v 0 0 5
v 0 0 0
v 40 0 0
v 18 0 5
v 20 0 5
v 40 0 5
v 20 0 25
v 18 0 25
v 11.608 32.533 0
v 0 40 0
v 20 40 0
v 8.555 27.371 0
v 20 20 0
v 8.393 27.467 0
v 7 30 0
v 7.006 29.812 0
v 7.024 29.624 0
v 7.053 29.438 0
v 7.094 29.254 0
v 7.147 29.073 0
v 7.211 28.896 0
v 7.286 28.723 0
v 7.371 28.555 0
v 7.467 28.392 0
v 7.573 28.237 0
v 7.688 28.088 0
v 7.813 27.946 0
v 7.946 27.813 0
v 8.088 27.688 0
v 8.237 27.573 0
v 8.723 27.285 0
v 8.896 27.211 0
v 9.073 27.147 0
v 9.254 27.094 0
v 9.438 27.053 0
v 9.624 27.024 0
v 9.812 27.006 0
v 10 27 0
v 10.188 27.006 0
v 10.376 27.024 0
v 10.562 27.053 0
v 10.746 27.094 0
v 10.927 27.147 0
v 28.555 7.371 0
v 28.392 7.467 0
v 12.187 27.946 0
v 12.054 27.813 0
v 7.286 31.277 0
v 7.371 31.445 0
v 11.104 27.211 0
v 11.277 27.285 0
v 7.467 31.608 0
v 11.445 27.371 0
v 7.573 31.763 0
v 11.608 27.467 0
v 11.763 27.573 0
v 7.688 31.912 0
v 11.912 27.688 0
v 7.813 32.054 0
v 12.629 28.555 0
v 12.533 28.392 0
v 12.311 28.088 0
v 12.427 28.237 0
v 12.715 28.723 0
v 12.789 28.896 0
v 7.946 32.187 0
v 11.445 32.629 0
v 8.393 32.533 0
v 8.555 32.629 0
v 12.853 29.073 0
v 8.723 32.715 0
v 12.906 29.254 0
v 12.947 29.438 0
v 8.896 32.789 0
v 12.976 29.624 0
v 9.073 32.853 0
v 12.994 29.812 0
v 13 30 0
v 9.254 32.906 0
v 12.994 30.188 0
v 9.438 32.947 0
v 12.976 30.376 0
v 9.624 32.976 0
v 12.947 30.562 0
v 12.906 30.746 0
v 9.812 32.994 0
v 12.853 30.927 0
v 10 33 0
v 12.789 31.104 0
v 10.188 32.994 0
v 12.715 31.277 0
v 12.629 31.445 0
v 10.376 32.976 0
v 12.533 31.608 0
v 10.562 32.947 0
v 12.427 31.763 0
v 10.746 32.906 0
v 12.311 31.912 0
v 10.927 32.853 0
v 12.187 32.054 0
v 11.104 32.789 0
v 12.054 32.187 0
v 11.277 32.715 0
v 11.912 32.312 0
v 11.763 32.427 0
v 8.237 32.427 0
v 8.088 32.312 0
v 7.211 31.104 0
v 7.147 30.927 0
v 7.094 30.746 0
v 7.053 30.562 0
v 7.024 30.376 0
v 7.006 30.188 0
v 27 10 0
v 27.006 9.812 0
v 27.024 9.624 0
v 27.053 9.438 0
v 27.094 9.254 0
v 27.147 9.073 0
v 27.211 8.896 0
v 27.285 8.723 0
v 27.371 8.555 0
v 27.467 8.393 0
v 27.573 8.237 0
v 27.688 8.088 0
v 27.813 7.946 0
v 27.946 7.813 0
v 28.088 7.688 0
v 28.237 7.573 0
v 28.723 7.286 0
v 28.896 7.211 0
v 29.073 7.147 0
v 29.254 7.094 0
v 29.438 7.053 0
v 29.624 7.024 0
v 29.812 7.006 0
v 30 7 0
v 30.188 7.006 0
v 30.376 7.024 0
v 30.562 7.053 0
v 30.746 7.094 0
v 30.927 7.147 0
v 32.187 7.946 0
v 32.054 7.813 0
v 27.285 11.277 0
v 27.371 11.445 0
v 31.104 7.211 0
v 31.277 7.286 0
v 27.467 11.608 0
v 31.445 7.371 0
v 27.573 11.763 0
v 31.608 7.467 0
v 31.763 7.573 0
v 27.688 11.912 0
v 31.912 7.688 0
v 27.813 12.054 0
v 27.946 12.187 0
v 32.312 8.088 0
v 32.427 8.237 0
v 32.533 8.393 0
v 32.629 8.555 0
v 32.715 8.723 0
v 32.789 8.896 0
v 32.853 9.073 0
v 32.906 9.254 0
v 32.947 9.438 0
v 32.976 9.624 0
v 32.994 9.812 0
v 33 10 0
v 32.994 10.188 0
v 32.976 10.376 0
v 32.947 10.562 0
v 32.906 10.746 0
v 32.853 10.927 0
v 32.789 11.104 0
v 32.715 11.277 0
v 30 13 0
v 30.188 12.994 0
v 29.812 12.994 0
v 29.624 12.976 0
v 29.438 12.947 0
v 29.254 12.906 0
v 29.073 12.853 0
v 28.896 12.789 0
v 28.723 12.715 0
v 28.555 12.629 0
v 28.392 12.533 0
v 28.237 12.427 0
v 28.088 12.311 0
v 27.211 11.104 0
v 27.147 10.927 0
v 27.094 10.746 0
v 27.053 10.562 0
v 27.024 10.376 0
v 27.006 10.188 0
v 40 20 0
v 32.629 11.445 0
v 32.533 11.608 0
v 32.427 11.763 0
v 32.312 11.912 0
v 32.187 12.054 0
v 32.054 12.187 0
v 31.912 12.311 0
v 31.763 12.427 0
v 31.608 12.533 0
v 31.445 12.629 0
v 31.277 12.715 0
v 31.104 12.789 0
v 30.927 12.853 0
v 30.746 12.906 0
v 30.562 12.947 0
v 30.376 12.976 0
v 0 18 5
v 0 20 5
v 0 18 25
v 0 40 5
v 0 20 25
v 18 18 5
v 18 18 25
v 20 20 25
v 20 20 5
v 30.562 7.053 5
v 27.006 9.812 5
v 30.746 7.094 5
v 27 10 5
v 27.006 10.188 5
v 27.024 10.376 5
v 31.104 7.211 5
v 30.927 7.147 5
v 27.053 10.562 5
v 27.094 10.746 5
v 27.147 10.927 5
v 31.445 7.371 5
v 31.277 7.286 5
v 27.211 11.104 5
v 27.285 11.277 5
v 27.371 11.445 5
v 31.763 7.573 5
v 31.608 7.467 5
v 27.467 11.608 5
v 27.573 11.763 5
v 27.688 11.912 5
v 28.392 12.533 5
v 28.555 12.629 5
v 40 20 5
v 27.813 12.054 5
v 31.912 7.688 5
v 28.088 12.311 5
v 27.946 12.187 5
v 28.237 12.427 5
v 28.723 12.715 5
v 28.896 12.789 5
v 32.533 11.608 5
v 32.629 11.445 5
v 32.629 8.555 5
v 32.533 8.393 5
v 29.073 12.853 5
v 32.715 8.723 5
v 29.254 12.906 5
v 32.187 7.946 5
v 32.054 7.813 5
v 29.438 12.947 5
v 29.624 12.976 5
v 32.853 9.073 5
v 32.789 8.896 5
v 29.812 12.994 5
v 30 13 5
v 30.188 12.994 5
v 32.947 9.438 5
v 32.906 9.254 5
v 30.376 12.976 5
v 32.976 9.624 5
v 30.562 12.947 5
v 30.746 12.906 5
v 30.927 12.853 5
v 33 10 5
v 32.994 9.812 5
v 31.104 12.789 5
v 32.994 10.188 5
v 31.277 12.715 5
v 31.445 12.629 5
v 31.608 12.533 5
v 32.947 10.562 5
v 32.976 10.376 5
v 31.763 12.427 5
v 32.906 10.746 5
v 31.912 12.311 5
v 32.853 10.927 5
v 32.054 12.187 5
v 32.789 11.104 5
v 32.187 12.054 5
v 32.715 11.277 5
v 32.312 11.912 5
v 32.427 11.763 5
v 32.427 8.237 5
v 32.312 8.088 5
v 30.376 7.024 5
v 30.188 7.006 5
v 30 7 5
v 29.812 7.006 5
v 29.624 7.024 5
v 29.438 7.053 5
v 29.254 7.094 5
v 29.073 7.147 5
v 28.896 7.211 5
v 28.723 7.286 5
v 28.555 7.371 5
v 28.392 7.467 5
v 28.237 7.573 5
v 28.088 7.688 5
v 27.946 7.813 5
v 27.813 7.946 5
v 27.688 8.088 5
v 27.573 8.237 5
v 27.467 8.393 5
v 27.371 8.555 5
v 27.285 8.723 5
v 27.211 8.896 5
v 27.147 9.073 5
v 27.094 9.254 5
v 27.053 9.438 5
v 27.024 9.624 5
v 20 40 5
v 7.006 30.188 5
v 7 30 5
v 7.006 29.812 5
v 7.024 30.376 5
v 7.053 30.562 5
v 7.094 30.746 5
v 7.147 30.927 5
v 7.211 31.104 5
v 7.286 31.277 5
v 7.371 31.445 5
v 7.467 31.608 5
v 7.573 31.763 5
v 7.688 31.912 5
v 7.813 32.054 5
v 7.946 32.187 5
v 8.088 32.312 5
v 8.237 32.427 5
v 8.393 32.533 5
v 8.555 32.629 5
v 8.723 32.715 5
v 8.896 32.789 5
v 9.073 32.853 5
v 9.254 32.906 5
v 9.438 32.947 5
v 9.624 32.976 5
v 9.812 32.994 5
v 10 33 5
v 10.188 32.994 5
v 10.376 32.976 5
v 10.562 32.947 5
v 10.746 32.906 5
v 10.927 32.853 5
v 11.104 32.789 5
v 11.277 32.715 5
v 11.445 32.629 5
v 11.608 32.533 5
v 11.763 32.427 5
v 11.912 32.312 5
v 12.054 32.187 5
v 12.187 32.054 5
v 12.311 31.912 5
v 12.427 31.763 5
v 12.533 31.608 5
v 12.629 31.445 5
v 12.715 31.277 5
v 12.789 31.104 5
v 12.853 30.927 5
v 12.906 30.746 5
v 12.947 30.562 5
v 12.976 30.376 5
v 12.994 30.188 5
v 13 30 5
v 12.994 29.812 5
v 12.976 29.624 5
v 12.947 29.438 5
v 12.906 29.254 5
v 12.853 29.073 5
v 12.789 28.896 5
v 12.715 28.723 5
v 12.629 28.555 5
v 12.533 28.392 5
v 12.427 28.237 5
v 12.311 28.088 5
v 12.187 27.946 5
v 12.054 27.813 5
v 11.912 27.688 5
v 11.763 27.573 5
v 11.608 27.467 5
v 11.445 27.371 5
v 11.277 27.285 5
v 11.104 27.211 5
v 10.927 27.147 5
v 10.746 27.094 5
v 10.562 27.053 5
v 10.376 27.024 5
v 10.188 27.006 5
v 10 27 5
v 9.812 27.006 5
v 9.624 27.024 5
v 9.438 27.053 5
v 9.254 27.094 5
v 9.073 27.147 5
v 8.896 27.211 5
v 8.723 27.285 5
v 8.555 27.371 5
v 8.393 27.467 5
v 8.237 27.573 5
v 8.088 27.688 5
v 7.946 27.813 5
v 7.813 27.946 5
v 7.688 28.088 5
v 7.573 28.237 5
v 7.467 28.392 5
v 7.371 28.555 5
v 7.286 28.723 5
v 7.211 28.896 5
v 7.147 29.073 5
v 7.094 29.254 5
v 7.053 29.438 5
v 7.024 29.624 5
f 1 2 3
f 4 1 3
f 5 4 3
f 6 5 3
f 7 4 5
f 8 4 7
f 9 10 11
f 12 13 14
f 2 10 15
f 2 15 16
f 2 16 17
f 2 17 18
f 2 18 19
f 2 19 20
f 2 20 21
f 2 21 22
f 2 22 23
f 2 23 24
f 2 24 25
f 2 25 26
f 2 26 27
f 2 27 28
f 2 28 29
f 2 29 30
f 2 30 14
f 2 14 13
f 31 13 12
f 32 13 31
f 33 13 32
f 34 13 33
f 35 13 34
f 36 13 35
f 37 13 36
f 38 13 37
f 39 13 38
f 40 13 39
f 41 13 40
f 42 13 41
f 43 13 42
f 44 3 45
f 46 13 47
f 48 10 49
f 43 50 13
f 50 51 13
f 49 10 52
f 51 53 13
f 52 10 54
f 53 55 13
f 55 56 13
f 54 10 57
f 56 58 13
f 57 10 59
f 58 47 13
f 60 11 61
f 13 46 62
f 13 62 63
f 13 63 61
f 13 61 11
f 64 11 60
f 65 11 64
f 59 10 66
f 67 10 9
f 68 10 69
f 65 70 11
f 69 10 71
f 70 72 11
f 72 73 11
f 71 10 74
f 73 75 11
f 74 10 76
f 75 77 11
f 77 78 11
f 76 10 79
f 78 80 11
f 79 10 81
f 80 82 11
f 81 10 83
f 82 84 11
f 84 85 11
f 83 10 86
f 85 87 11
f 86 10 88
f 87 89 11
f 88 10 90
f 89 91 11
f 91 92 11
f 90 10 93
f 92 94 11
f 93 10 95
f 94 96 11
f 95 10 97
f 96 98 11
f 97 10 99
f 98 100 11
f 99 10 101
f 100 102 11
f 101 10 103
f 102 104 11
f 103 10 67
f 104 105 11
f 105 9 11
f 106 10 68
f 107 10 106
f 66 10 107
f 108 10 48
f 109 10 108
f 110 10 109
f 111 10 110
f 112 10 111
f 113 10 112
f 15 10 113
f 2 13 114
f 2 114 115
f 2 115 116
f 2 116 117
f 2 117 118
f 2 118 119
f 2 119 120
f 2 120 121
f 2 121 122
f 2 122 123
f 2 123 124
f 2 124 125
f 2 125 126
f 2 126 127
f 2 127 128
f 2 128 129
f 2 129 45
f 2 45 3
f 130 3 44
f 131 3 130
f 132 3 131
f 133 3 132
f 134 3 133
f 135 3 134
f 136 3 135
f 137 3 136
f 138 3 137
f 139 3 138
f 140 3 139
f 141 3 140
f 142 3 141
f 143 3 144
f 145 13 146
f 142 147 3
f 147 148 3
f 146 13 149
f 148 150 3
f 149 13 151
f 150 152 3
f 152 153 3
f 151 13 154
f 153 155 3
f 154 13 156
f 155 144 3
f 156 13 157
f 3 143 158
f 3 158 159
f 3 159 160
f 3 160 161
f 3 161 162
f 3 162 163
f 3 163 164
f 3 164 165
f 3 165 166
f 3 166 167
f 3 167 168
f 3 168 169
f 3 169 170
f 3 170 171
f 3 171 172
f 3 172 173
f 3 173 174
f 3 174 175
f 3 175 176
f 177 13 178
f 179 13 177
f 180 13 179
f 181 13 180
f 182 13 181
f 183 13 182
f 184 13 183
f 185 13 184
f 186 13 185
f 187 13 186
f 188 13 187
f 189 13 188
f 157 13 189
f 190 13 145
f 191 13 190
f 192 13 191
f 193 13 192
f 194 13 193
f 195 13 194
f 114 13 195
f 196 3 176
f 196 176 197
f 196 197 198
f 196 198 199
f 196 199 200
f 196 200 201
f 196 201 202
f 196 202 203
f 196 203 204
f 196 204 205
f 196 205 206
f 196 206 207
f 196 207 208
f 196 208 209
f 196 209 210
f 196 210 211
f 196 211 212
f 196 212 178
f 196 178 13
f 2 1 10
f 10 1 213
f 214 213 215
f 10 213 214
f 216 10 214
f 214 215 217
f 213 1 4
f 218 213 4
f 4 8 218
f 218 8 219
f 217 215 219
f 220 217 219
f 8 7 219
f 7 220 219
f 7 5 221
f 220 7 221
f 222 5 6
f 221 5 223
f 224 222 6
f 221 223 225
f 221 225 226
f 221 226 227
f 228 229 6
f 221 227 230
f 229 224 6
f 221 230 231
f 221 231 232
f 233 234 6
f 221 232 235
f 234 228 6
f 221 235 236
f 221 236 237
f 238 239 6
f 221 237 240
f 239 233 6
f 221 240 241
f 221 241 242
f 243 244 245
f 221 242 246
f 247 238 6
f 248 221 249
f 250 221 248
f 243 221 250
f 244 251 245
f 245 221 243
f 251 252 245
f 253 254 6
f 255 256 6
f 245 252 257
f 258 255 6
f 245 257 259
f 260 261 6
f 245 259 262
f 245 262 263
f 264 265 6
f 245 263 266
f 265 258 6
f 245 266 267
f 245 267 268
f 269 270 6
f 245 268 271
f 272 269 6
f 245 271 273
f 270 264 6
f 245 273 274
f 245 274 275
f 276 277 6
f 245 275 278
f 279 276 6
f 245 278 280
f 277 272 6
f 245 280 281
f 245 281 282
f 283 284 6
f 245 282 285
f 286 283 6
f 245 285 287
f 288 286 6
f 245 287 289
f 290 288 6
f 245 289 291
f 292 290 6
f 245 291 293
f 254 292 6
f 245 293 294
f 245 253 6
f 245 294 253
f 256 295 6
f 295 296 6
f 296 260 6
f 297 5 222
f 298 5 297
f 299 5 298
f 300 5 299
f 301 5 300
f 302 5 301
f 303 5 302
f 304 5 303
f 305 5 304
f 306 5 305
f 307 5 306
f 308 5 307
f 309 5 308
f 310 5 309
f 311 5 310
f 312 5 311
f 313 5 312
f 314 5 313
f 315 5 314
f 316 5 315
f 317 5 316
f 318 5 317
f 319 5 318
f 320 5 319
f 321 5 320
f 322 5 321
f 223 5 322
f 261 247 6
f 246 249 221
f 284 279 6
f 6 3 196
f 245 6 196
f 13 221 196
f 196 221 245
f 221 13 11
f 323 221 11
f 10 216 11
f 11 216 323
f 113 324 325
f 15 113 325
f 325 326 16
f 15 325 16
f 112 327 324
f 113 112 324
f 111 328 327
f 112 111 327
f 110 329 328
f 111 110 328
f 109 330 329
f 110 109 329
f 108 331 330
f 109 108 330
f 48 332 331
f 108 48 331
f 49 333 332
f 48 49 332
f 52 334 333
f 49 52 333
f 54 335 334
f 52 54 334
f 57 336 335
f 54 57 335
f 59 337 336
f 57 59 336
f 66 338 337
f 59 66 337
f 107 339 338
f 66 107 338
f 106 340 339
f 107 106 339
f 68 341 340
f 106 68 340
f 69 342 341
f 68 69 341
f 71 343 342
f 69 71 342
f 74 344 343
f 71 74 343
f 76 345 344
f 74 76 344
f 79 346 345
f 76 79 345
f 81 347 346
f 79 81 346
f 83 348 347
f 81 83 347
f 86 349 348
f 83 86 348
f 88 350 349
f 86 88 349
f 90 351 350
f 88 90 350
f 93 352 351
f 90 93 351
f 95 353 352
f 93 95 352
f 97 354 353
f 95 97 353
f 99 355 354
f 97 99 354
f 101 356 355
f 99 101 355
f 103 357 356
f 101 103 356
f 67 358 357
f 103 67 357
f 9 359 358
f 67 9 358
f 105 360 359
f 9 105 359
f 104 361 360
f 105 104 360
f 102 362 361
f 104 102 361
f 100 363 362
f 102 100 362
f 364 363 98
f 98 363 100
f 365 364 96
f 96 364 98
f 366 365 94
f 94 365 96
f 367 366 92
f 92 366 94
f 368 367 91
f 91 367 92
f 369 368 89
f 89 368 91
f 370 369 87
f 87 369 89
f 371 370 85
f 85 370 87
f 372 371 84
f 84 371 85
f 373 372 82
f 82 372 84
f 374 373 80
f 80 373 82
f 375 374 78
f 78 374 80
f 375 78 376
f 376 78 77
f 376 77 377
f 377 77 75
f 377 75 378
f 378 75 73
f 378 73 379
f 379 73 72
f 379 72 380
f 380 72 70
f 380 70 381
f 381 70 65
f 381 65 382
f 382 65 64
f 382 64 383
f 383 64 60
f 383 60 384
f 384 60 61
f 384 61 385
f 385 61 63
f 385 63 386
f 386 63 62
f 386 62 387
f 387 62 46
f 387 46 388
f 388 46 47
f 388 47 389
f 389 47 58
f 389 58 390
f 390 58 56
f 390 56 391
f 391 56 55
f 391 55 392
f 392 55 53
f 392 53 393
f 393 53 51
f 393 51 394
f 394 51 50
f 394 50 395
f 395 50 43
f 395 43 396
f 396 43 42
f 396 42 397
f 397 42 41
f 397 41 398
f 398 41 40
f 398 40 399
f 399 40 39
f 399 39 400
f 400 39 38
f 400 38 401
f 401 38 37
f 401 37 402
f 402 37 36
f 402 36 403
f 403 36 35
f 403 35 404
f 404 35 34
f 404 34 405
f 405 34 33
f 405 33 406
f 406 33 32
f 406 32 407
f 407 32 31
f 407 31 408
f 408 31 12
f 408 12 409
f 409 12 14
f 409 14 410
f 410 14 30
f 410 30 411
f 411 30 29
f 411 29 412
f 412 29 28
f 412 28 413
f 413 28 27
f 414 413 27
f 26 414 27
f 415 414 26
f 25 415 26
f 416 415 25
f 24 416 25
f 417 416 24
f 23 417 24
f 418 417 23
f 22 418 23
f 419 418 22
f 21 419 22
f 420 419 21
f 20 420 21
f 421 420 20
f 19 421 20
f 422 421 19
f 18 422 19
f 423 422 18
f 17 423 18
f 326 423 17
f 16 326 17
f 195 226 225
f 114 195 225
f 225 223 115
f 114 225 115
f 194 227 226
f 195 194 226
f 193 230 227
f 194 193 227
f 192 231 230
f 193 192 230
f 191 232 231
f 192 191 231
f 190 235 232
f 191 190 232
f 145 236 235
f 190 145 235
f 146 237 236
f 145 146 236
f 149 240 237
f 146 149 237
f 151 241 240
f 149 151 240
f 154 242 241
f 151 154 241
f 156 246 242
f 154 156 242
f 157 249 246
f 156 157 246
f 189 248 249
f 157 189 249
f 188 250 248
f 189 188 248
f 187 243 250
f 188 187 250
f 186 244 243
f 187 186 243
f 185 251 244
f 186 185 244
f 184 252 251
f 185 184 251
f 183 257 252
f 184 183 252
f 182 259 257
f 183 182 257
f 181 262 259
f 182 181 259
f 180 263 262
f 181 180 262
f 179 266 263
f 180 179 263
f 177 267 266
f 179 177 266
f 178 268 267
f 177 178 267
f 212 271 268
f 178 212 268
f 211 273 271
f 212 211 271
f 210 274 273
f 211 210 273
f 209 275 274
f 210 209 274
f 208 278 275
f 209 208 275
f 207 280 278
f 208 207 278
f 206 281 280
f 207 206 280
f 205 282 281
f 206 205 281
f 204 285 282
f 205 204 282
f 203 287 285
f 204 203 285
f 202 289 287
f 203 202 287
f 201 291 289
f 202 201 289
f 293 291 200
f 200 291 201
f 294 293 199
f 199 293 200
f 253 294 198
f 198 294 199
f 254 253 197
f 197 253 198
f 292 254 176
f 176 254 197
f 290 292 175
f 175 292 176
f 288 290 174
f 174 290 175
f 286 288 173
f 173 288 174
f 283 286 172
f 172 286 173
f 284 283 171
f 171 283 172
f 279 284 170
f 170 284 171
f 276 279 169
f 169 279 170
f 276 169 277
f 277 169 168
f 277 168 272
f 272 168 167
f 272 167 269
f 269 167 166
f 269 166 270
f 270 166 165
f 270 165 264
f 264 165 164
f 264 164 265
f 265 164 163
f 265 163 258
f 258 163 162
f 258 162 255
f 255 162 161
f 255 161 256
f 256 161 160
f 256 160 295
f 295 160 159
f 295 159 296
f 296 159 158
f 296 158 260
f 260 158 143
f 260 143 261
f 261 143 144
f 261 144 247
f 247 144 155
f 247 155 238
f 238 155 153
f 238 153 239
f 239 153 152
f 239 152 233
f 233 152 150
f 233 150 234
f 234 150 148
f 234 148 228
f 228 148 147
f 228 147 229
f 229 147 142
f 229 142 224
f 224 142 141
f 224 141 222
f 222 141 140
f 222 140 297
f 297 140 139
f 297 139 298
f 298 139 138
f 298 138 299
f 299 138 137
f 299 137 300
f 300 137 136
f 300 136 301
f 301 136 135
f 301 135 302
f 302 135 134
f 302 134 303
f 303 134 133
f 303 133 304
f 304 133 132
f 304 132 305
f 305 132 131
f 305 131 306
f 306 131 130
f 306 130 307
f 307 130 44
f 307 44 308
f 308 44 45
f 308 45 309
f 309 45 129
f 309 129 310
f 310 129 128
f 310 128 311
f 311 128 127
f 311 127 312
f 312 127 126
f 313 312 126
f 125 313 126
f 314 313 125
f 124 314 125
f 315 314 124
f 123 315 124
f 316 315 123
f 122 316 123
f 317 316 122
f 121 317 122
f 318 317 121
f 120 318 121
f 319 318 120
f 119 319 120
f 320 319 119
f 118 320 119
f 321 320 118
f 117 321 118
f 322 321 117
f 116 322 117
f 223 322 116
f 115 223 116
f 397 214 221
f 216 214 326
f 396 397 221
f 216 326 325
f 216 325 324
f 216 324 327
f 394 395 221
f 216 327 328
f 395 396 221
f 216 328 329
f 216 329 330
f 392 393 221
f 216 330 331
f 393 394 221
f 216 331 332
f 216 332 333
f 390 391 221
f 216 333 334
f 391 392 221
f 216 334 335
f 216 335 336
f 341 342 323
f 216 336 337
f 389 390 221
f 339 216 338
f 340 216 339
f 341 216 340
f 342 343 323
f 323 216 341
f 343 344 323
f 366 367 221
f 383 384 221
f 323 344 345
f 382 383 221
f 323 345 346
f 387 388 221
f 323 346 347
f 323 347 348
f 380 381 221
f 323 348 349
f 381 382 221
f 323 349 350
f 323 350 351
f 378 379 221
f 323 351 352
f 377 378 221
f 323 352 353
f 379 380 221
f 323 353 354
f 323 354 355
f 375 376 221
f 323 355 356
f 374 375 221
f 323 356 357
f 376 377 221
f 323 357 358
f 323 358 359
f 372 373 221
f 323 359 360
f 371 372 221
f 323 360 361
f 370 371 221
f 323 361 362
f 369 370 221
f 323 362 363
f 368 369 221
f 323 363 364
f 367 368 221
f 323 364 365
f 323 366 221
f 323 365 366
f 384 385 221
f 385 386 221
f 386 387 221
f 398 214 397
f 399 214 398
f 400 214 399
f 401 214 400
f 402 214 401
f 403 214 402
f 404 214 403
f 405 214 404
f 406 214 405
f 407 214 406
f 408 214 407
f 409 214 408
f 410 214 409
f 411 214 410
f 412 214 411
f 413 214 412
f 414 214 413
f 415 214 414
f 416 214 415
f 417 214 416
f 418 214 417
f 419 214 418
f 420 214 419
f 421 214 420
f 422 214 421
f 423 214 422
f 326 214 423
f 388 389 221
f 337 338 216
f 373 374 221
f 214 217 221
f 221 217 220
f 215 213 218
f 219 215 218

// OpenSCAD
difference(){
    union(){
        cube([40,20,5]);
        translate([0,20,0])cube([20,20,5]);
        };
    translate([30,10,0]) cylinder(h = 10, r1= 3, r=3, $fn = 100);
    translate([10,30,0]) cylinder(h = 10, r1= 3, r=3, $fn = 100);
};

translate([0,18,5])cube([20,2,20]);
translate([18,0,5])cube([2,20,20]);
